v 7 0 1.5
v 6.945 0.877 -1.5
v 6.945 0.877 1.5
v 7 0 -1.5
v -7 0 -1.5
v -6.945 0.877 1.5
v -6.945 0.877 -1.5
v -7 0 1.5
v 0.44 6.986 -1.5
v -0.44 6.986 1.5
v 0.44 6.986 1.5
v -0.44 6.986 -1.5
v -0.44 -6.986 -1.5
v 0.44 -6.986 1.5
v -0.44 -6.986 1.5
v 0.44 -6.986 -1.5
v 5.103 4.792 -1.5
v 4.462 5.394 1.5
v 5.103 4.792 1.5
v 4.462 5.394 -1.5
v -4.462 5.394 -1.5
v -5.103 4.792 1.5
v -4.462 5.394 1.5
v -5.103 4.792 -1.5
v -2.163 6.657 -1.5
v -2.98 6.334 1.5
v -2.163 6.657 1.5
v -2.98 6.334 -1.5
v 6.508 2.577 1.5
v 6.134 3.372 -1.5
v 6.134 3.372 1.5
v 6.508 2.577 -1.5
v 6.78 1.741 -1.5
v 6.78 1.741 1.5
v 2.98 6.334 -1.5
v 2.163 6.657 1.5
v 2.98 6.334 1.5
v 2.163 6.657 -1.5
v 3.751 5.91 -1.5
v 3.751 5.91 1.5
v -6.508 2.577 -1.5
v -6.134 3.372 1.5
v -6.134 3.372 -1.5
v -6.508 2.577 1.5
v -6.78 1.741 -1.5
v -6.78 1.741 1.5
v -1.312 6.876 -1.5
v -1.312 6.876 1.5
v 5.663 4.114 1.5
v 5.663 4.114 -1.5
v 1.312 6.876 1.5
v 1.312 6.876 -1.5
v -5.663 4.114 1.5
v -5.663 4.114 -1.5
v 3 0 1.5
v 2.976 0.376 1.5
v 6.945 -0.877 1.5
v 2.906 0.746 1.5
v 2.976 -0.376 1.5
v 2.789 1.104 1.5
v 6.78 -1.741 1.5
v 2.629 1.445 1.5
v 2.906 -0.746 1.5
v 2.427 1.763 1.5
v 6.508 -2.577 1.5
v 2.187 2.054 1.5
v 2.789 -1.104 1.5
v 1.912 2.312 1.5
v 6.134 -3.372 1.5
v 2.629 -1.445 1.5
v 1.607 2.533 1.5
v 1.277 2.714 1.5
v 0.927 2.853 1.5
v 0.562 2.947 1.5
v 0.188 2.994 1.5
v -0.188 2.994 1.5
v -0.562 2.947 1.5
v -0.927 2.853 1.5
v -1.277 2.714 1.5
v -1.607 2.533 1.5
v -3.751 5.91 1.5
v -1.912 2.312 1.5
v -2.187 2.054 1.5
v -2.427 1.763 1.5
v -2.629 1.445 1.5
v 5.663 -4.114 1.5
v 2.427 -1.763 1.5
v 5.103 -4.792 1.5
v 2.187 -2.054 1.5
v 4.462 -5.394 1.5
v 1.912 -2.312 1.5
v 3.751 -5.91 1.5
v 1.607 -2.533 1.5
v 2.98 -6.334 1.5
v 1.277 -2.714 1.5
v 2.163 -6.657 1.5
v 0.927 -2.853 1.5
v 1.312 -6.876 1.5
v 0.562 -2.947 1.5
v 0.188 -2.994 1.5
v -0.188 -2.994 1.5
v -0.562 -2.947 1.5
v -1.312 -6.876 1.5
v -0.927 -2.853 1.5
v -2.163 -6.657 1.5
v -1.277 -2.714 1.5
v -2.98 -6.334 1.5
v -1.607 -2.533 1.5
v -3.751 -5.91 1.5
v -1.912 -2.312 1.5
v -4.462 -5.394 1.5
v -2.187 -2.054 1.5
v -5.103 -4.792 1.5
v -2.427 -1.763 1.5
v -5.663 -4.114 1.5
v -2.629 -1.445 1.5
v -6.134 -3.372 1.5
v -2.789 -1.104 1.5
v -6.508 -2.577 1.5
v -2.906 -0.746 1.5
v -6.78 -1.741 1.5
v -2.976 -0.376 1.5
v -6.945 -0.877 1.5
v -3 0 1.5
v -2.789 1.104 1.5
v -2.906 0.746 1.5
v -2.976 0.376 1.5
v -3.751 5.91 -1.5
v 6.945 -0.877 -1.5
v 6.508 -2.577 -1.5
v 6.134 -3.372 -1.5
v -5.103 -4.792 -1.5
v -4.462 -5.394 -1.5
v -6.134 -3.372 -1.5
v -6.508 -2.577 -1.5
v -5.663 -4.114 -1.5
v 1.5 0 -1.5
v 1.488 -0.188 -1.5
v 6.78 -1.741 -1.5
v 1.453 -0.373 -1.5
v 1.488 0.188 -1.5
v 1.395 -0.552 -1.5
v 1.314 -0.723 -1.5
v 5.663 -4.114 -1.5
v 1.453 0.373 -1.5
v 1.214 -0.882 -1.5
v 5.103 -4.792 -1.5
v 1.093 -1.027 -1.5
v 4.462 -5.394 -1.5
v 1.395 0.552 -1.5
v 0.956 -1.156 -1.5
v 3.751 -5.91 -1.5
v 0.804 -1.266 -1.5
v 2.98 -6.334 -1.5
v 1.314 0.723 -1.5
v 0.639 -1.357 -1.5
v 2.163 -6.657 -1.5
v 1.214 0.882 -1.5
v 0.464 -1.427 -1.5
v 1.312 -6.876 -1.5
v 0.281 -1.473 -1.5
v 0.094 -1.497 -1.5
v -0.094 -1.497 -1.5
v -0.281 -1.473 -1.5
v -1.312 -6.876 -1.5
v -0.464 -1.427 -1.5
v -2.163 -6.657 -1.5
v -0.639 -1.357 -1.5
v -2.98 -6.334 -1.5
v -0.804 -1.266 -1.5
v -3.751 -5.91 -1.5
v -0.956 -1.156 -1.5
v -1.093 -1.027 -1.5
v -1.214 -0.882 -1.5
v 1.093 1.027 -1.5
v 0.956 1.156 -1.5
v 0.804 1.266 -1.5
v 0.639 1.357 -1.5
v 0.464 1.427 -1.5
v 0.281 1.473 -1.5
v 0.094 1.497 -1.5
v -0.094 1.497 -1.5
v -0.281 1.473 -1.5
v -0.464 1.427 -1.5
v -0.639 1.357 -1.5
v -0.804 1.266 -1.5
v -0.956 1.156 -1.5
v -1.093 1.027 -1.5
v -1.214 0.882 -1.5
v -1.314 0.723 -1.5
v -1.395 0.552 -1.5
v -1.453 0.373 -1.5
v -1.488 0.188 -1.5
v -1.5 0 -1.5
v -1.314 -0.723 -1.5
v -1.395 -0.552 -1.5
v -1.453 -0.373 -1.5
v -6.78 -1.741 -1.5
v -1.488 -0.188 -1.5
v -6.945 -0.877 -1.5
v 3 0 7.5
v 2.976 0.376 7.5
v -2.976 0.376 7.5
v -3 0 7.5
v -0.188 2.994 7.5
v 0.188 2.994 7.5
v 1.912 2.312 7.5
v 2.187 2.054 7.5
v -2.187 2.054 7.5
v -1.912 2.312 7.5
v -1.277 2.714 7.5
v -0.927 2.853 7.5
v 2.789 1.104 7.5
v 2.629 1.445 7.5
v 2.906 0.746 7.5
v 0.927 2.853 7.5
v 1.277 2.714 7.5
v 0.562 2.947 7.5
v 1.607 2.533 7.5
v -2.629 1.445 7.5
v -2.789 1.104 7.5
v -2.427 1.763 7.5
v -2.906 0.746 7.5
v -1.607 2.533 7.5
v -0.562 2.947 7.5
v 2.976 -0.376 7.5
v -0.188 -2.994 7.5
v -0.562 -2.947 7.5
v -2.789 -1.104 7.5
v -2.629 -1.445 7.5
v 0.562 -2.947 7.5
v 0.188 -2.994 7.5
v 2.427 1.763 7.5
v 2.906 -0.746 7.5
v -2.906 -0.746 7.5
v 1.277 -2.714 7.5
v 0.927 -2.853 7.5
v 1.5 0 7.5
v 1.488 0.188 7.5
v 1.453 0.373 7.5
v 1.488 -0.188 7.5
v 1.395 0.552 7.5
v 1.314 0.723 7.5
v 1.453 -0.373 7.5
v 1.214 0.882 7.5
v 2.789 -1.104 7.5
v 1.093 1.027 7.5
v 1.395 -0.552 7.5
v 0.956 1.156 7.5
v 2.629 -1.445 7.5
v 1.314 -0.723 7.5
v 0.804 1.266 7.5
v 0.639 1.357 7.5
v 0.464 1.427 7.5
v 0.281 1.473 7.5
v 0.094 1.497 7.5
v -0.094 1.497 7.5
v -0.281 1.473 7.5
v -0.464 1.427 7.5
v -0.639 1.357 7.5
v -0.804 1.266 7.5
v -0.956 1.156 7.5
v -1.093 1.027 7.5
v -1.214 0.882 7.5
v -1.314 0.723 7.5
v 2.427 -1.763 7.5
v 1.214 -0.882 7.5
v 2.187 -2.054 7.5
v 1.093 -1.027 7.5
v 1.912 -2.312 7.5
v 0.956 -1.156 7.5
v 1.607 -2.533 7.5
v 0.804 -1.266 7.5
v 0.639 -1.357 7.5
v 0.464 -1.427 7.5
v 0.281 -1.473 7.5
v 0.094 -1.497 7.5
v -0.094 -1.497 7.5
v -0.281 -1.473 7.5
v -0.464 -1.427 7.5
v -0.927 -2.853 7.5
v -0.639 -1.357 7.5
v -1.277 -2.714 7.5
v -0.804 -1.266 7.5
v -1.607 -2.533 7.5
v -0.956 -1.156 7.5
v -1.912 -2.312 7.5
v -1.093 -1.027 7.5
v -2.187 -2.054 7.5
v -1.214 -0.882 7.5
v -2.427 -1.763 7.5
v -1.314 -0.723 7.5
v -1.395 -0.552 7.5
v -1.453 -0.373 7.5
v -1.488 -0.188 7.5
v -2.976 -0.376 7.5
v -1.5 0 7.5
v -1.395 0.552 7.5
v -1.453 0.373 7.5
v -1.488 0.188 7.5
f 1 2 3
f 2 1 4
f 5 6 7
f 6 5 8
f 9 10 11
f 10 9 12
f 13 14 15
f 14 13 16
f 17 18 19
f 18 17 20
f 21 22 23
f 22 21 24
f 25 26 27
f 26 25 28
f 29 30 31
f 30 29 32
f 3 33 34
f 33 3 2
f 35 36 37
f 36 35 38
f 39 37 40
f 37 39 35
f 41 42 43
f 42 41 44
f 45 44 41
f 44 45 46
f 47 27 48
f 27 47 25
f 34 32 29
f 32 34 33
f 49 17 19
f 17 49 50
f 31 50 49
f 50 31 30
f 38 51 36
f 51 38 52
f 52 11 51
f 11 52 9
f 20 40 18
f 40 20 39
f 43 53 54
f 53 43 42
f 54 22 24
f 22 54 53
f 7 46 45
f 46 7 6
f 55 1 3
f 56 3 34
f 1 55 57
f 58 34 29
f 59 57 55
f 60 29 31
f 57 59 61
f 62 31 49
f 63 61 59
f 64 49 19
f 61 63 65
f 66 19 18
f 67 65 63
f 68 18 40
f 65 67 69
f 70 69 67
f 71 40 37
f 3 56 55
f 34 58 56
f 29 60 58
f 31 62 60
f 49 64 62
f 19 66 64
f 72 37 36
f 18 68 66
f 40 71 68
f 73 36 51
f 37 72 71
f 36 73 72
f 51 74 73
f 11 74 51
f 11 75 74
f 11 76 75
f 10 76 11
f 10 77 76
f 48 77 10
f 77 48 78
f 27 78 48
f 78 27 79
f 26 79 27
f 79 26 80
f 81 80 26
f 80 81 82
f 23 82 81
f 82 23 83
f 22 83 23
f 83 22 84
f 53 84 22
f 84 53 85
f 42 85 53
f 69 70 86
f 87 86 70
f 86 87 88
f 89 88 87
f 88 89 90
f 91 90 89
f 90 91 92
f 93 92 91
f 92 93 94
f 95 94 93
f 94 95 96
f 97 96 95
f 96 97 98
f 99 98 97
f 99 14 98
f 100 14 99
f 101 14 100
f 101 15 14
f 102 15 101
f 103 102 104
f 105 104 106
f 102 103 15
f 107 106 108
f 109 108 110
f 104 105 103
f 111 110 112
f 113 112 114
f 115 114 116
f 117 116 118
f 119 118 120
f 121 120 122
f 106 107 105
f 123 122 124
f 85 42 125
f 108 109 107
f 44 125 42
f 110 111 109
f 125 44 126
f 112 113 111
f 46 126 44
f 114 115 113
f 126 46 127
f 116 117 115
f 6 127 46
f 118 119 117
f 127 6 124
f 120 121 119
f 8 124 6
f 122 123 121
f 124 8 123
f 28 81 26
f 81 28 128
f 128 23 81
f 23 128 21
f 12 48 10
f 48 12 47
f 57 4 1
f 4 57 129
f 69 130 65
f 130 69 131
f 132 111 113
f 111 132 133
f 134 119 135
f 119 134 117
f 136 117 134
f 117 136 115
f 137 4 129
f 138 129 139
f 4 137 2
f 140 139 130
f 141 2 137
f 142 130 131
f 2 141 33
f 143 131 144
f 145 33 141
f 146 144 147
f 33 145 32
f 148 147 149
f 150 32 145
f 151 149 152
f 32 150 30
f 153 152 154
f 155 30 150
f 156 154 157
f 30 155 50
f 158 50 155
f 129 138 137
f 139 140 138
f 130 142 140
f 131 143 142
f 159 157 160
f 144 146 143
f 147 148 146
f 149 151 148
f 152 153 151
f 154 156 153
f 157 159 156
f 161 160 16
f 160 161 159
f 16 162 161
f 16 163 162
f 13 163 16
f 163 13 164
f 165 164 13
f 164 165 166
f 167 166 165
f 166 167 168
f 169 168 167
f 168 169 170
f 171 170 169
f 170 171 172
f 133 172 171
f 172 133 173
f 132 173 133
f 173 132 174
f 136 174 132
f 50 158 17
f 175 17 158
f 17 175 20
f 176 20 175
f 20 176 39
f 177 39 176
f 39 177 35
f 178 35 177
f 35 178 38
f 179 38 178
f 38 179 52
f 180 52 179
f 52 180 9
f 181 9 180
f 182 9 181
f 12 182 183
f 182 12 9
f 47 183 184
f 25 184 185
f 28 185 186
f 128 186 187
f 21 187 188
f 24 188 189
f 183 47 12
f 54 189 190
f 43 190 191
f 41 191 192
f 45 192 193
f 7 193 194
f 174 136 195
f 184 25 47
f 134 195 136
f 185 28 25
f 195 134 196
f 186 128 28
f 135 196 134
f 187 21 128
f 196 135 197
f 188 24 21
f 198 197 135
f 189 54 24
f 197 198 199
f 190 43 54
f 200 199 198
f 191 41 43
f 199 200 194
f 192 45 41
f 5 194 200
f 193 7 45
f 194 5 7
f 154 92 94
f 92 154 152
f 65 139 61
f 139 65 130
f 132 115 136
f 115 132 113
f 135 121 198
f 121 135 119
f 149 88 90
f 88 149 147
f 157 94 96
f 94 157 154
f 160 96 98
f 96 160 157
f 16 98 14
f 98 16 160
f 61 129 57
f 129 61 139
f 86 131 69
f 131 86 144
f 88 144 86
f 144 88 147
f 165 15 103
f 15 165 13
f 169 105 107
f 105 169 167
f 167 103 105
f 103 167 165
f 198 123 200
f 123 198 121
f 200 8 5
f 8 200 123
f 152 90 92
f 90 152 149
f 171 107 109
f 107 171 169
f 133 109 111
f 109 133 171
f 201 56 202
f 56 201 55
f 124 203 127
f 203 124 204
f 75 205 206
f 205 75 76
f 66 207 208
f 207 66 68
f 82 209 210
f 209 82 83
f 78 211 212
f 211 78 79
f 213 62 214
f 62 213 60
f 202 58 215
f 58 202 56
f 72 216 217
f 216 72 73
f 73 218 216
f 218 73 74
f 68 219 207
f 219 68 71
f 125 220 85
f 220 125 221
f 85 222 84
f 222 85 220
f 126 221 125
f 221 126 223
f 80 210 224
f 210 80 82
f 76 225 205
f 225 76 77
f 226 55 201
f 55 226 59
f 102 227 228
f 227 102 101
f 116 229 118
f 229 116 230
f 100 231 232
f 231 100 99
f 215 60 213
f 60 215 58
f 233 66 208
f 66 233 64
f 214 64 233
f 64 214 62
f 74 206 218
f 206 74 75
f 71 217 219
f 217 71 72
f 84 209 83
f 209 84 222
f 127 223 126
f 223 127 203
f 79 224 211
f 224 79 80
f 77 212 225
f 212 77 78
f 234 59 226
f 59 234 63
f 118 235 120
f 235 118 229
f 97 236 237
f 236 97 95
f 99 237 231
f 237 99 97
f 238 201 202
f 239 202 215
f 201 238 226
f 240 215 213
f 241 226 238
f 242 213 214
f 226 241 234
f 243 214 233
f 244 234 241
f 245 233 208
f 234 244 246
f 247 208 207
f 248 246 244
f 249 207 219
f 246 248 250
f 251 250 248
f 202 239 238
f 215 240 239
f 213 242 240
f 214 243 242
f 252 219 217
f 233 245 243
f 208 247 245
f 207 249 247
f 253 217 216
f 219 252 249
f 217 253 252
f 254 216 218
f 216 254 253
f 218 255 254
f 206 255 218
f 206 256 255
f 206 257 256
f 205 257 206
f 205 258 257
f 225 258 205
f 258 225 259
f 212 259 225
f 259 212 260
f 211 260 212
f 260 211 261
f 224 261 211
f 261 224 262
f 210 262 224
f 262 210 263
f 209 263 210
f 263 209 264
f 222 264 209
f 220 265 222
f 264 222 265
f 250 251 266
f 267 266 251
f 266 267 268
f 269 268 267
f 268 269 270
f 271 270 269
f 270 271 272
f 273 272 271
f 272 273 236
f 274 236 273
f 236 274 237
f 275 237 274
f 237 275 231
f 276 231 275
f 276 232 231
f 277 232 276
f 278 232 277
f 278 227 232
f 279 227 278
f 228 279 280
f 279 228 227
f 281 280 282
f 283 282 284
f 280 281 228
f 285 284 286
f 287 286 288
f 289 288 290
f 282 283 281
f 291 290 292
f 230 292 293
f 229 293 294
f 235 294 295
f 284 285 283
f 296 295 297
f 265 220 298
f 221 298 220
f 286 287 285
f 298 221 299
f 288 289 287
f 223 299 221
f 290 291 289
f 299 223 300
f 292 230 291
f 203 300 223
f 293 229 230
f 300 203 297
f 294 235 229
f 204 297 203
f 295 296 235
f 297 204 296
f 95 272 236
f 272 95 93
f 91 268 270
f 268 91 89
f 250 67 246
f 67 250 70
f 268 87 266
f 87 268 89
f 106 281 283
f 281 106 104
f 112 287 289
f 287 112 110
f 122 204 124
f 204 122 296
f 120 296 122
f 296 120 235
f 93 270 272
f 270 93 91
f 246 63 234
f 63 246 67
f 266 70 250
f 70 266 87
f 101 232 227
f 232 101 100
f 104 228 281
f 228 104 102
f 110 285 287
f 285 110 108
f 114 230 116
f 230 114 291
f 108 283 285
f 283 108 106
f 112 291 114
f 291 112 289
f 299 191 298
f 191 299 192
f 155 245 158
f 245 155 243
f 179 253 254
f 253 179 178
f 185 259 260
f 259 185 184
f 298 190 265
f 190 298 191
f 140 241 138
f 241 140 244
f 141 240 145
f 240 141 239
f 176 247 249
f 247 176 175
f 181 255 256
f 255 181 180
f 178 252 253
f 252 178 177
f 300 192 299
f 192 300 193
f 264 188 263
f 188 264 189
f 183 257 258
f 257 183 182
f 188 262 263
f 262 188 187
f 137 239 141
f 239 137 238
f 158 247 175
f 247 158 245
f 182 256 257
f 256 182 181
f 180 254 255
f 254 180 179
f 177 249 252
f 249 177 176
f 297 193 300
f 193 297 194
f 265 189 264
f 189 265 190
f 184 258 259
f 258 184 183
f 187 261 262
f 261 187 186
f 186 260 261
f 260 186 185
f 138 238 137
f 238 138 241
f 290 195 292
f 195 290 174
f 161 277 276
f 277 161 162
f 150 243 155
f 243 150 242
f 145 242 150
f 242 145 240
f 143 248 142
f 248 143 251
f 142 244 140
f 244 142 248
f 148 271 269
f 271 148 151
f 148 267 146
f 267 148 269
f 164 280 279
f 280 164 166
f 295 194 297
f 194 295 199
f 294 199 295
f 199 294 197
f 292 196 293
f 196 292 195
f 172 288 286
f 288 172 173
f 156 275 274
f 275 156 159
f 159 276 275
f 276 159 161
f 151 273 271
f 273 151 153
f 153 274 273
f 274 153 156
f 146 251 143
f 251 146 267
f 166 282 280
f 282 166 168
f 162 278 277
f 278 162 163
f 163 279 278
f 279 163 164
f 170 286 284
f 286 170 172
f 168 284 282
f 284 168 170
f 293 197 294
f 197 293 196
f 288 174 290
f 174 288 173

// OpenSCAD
$fn = 50;


difference() {
	union() {
		translate(v = [0, 0, -1.5000000000]) {
			rotate(a = [0, 0, 0]) {
				cylinder(h = 3, r = 7.0000000000);
			}
		}
		translate(v = [0, 0, -1.5000000000]) {
			rotate(a = [0, 0, 0]) {
				cylinder(h = 9, r = 3.0000000000);
			}
		}
	}
	union() {
		translate(v = [0, 0, -125.0000000000]) {
			rotate(a = [0, 0, 0]) {
				cylinder(h = 250, r = 1.5000000000);
			}
		}
	}
}
